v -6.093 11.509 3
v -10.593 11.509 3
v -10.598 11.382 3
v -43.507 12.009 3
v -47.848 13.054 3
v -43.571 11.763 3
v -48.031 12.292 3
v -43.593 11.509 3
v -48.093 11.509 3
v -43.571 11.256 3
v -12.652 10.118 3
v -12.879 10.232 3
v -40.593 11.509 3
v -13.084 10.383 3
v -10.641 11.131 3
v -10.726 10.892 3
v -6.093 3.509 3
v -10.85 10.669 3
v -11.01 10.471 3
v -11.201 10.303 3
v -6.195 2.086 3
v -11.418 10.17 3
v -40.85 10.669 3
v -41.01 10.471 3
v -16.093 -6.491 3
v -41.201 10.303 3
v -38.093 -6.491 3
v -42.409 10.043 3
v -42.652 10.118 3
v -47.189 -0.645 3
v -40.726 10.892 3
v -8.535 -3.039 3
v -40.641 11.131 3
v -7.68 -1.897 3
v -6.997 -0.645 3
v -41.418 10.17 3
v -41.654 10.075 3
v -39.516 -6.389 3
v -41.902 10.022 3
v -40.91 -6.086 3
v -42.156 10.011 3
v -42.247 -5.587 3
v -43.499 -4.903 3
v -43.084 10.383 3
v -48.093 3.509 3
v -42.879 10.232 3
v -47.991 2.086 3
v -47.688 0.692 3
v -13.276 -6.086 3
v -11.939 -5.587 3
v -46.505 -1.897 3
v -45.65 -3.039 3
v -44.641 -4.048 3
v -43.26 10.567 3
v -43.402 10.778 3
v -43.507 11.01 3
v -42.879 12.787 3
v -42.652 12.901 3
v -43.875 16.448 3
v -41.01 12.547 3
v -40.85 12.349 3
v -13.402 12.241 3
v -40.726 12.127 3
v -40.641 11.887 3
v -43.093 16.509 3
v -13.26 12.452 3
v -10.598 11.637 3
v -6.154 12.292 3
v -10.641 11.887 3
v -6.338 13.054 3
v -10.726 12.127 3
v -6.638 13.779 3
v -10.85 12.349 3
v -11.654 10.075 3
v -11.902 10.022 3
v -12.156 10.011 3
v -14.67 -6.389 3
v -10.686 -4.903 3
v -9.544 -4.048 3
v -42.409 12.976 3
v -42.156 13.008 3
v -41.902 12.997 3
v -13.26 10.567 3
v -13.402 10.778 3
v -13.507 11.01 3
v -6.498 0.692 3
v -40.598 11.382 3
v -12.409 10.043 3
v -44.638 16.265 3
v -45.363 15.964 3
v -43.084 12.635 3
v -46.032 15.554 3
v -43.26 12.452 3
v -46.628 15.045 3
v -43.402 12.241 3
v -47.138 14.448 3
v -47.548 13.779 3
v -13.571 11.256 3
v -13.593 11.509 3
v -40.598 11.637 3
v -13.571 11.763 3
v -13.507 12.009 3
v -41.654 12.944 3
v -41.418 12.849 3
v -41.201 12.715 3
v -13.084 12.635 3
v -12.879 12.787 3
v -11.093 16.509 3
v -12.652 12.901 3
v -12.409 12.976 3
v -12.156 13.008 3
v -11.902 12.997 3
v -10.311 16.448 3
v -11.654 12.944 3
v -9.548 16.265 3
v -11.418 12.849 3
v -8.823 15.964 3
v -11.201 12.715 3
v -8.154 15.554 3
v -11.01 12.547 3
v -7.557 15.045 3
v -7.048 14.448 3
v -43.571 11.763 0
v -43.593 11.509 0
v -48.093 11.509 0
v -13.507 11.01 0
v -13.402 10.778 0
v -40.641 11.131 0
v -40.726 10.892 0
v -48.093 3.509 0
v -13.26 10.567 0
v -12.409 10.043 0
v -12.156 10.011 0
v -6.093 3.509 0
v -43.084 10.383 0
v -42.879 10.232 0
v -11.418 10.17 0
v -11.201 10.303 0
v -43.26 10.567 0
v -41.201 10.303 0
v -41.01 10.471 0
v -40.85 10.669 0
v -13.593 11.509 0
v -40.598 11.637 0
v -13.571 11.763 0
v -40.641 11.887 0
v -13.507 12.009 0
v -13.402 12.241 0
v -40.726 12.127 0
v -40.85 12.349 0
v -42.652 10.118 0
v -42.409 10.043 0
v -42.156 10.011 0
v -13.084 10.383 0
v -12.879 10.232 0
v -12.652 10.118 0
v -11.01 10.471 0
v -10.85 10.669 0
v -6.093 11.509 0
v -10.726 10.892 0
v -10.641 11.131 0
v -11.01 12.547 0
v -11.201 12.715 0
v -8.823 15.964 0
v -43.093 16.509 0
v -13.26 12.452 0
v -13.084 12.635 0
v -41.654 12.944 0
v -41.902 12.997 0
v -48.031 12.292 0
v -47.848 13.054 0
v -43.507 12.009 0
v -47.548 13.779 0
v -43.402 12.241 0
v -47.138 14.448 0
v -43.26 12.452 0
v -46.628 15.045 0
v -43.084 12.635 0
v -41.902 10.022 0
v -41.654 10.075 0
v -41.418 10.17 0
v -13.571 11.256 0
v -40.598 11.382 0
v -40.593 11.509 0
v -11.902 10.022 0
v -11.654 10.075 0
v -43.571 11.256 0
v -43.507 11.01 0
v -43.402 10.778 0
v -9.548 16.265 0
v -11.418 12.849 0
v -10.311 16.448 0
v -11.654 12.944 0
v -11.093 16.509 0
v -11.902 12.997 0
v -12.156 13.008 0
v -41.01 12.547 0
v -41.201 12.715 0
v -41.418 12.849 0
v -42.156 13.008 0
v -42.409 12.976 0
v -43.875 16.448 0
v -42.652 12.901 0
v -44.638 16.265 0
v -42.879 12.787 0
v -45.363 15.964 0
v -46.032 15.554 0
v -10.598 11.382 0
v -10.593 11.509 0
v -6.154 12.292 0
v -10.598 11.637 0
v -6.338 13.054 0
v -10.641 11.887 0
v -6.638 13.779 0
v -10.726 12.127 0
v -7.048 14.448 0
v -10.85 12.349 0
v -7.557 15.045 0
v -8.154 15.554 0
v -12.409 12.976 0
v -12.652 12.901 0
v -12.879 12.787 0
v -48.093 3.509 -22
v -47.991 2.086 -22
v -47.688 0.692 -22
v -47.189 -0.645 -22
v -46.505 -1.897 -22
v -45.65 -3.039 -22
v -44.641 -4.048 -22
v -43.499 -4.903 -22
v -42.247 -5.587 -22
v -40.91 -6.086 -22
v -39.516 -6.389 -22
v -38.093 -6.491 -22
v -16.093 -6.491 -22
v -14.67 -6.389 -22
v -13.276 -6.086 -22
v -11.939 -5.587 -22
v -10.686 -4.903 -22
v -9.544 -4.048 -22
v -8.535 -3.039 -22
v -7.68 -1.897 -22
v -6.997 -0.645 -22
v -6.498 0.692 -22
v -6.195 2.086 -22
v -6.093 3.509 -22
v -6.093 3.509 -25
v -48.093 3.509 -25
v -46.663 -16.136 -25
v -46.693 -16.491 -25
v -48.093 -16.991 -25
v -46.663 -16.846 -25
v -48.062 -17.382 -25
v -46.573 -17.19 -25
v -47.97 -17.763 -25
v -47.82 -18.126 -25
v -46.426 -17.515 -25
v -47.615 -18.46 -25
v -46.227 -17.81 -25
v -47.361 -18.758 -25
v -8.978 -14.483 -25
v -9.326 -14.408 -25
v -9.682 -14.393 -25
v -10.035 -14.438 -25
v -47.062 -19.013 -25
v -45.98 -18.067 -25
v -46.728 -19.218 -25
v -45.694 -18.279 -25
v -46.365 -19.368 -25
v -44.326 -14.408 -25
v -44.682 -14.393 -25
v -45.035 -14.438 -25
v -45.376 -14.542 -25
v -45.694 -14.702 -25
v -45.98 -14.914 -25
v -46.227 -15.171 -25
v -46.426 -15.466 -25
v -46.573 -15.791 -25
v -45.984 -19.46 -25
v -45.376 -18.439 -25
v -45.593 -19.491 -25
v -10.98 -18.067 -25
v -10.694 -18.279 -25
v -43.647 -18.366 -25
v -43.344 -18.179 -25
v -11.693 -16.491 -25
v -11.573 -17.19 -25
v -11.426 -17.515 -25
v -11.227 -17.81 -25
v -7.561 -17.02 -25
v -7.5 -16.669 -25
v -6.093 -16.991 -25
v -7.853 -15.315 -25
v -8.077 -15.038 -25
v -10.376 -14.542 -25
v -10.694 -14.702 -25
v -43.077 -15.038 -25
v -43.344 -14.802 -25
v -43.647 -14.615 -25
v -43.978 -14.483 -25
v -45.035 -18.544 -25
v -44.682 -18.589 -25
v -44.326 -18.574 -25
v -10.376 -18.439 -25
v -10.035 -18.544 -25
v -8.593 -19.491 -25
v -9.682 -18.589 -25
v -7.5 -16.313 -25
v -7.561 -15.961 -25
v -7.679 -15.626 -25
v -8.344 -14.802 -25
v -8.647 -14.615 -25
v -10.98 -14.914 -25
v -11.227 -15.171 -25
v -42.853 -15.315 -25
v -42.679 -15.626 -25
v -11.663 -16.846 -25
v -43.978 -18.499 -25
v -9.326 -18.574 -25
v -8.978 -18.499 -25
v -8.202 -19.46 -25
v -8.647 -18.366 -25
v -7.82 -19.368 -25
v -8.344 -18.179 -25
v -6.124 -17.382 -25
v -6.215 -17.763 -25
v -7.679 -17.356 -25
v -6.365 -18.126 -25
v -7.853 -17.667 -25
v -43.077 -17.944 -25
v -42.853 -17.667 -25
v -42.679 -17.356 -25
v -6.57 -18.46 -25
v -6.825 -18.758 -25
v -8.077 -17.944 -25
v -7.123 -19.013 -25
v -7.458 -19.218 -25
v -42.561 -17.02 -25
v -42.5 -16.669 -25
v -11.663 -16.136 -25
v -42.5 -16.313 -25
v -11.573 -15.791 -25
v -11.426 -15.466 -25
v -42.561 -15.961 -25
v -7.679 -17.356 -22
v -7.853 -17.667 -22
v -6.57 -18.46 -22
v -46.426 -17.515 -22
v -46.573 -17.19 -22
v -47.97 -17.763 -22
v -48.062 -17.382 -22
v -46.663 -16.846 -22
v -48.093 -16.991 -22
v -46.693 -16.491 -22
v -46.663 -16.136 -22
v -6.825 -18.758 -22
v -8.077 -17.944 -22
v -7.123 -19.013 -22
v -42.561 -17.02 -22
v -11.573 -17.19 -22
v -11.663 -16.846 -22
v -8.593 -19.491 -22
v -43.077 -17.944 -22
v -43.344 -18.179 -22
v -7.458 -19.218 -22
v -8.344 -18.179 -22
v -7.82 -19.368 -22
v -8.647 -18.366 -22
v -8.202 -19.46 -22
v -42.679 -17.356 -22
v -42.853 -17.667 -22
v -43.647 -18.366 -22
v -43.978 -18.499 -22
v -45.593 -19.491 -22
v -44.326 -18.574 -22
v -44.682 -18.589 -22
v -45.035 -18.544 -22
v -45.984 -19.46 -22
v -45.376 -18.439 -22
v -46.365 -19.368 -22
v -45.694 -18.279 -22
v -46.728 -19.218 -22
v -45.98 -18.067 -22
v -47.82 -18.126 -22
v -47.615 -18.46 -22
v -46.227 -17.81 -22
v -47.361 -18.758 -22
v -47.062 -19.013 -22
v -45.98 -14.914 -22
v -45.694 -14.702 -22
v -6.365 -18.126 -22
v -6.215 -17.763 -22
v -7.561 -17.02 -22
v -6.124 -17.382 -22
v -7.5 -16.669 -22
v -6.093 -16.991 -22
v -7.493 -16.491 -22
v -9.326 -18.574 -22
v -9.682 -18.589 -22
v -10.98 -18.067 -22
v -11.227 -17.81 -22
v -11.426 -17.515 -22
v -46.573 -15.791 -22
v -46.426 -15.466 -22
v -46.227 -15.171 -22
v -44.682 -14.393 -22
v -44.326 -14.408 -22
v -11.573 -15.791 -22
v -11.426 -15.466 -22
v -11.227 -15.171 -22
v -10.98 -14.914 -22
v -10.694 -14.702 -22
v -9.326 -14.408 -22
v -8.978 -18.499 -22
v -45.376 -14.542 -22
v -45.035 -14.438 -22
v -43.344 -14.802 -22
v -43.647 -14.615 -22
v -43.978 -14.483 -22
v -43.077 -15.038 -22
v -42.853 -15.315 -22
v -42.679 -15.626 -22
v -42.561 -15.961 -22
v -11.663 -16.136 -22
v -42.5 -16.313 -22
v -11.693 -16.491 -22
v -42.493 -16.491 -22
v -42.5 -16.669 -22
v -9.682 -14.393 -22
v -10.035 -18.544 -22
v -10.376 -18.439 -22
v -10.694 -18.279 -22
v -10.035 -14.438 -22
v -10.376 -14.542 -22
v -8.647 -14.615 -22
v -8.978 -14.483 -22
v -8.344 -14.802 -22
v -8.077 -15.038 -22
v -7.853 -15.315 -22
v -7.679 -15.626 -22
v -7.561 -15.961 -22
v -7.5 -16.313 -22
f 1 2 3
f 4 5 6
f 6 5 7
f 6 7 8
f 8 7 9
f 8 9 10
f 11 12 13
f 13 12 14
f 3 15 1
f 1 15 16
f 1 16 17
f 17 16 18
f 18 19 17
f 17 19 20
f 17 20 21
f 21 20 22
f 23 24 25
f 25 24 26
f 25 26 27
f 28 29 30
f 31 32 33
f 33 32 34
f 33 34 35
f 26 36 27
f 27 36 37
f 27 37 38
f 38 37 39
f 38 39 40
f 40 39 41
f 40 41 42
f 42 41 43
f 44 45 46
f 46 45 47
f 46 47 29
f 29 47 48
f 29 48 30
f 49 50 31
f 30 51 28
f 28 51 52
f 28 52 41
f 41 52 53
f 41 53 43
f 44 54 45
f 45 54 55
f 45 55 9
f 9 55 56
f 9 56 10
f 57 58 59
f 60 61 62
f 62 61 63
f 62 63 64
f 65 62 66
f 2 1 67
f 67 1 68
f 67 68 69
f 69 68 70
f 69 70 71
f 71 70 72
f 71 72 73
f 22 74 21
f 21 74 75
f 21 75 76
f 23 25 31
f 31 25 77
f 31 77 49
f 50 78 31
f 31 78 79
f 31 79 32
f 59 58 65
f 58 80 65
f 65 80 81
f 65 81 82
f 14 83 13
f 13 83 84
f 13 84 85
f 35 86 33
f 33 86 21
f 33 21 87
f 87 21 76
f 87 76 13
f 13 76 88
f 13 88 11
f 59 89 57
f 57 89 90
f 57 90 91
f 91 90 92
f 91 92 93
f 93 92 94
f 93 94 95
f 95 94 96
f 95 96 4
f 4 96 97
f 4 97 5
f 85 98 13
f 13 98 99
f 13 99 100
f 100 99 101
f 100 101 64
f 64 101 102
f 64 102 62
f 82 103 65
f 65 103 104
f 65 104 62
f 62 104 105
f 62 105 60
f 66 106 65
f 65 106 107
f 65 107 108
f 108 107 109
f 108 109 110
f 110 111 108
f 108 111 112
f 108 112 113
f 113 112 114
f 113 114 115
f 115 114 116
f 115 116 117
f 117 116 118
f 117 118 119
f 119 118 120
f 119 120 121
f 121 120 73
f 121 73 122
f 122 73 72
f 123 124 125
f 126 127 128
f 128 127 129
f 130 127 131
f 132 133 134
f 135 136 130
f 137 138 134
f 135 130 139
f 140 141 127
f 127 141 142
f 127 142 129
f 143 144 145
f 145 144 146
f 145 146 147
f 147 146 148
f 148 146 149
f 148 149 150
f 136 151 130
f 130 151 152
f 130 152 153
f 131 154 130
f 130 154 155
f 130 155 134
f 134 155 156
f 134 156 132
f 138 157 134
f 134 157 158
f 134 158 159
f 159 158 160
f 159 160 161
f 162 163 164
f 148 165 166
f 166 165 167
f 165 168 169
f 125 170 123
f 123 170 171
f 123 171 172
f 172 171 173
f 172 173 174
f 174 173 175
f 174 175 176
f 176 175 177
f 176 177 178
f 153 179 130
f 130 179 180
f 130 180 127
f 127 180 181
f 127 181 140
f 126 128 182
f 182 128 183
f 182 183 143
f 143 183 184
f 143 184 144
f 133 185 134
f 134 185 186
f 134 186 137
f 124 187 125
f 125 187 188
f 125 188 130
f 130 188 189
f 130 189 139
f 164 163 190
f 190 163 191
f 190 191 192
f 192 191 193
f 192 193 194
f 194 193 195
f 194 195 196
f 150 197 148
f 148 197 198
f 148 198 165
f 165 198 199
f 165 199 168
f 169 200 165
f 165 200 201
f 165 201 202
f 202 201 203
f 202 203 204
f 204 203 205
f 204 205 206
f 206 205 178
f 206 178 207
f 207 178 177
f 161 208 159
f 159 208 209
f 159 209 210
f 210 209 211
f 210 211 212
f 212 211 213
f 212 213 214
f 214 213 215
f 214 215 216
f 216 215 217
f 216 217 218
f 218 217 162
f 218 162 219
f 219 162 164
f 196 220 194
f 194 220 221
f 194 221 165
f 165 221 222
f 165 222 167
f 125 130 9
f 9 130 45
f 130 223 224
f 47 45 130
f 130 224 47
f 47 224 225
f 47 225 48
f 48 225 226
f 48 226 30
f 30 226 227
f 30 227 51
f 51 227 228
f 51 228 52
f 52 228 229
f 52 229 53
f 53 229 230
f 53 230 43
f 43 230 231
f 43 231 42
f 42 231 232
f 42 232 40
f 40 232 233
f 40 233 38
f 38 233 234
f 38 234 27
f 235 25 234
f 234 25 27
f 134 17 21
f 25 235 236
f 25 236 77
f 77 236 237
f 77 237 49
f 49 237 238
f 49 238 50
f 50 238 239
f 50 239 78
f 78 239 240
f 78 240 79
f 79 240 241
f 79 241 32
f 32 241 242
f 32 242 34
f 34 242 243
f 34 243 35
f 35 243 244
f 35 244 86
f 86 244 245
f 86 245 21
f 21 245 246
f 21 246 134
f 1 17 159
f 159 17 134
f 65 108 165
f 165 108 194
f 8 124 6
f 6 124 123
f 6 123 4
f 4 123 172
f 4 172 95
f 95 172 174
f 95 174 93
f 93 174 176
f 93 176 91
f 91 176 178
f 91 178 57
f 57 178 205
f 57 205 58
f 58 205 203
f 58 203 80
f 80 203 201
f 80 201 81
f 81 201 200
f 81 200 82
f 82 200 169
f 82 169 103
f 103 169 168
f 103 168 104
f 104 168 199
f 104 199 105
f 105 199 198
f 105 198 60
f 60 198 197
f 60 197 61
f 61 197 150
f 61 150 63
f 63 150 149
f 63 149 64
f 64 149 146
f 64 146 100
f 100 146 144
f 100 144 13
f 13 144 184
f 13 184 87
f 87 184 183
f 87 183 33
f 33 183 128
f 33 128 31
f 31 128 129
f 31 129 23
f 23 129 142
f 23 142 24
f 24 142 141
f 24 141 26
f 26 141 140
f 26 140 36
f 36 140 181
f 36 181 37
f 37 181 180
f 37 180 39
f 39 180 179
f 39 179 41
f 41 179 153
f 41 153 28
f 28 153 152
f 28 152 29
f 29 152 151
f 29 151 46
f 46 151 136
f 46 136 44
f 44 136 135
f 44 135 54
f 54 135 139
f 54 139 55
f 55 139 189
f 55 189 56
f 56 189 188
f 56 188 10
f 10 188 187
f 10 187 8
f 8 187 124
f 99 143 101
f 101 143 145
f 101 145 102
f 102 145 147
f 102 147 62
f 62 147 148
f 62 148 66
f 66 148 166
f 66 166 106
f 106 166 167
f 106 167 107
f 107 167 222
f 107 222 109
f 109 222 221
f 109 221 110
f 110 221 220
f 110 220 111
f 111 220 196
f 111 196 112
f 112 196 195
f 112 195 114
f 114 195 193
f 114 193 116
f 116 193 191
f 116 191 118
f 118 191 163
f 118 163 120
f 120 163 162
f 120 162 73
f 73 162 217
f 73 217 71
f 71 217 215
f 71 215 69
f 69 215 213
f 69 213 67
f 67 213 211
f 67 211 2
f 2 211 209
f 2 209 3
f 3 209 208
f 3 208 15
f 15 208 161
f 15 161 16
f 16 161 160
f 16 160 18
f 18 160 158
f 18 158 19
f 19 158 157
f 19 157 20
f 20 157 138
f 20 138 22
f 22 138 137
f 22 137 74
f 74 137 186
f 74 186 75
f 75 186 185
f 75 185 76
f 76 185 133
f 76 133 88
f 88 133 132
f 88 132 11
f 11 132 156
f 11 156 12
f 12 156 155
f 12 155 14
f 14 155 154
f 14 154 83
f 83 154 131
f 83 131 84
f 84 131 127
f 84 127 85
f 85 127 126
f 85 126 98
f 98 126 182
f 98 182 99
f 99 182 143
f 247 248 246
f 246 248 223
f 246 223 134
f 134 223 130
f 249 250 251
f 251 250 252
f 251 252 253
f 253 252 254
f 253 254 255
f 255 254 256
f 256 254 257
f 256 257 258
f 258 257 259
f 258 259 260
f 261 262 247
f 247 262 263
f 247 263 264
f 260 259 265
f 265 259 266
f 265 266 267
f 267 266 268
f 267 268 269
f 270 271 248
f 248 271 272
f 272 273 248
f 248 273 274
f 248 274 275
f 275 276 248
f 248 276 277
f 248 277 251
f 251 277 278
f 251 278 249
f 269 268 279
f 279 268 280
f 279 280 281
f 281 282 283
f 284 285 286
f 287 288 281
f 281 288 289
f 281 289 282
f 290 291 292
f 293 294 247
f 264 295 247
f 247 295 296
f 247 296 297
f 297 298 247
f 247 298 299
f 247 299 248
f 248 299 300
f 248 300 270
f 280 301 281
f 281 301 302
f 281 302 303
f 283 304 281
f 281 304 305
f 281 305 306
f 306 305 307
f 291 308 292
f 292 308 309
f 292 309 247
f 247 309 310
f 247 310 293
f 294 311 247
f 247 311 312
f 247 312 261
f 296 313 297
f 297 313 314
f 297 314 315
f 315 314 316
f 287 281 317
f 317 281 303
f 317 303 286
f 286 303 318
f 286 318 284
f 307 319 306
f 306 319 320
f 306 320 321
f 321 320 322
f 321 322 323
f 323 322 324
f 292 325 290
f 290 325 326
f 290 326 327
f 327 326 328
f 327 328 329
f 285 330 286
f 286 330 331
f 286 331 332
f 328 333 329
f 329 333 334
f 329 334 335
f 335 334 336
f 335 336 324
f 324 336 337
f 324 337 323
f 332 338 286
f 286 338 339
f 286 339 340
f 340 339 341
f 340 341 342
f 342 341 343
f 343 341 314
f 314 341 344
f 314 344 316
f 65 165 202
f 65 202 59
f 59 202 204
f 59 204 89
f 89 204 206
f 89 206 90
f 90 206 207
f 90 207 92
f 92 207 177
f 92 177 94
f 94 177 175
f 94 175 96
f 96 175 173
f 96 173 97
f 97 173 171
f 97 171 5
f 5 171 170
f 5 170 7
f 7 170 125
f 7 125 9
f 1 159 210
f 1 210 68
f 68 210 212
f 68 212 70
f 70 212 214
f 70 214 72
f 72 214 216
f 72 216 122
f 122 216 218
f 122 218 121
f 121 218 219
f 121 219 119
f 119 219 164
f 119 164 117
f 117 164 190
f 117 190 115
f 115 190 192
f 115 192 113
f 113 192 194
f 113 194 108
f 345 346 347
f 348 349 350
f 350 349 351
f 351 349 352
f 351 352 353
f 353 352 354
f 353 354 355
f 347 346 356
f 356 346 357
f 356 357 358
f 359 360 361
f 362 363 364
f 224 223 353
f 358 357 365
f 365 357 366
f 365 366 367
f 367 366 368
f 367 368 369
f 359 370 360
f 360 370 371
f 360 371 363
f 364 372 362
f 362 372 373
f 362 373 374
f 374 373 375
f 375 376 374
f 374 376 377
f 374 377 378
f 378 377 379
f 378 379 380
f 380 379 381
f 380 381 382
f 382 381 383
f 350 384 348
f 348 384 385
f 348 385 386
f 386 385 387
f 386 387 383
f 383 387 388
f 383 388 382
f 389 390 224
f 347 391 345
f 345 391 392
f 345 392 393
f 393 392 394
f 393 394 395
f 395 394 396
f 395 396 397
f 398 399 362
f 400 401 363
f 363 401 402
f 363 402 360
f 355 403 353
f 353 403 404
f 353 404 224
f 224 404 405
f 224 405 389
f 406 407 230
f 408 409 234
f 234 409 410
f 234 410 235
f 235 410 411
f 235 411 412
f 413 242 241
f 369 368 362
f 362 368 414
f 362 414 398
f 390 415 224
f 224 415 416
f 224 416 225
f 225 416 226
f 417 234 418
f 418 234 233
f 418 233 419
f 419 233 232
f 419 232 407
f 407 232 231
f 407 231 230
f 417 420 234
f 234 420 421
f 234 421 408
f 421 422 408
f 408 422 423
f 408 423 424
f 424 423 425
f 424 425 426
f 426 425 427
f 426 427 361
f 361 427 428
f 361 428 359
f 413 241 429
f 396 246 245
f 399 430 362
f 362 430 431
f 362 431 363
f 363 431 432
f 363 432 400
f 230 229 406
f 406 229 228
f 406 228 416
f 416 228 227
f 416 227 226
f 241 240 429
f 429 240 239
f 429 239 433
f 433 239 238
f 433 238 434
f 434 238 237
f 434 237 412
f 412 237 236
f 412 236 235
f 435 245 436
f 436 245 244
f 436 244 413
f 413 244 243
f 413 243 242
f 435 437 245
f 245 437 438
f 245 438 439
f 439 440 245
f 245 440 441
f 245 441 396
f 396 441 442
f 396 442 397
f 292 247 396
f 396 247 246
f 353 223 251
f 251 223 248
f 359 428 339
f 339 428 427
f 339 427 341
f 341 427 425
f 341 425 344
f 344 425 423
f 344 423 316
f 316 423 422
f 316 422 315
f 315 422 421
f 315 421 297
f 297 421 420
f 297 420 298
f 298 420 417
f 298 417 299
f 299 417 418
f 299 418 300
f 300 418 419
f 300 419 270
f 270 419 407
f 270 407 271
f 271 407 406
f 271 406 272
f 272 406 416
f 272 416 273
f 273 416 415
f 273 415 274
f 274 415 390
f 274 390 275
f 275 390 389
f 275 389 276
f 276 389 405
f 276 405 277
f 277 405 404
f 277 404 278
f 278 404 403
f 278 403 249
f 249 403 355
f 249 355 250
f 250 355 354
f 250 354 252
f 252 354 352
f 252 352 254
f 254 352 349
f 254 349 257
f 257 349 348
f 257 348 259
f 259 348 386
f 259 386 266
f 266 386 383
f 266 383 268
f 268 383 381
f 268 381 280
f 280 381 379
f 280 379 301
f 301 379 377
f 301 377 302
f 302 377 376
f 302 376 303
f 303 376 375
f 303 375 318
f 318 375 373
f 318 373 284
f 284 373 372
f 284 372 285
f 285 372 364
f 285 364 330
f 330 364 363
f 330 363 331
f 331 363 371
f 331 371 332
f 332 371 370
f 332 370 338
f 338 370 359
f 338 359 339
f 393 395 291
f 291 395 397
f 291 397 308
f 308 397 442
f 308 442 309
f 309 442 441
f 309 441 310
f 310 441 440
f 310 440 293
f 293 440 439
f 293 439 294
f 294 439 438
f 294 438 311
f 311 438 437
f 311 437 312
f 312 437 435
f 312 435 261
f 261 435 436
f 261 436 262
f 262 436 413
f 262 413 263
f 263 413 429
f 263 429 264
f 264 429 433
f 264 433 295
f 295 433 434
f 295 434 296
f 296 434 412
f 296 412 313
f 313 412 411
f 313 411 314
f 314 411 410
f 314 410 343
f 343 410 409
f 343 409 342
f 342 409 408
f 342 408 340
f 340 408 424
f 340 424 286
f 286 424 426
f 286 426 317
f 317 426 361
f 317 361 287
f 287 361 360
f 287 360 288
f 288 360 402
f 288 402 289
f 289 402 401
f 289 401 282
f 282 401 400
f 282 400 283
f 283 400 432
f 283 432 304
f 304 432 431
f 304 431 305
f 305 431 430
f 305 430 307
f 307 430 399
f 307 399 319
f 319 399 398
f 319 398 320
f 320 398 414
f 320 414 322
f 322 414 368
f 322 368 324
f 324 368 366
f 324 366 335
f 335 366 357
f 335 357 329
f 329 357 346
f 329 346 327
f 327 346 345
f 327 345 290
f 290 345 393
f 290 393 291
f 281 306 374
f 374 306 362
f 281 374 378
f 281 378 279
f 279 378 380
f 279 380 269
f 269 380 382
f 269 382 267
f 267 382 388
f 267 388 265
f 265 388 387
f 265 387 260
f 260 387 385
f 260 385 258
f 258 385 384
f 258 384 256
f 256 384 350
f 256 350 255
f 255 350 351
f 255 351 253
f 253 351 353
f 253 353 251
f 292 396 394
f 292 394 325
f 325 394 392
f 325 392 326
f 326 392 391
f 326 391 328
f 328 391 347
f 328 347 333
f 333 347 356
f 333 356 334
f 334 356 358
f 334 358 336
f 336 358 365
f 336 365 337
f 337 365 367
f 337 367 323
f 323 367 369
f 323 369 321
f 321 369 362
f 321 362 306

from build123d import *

# Parameters (mm, degrees)
SKETCH3_R           = 1.5
BOSS_EXTRUDE3_DEPTH = 3
BOSS_EXTRUDE4_START = -25
BOSS_EXTRUDE4_DEPTH = 25
FILLET4_R           = 5
SKETCH9_W           = 42
SKETCH9_H           = 3
BOSS_EXTRUDE7_DEPTH = 30
FILLET6_R           = 5
FILLET7_R           = 5
SKETCH11_R          = 2.1
CUT_EXTRUDE2_DEPTH  = 30
SKETCH12_W          = 44.285709781
SKETCH12_H          = 8.726500344
CUT_EXTRUDE3_DEPTH  = 10
FILLET8_R           = 2.5


with BuildPart() as part:
    # Sketch3 → Boss-Extrude3 (new body)
    with BuildSketch(Plane.XY):
        with BuildLine():
            Line((-22.592834793, 16.50935751), (-6.092834793, 16.50935751))
            Line((-6.092834793, 16.50935751), (-6.092834793, 3.50935751))
            ThreePointArc((-6.092834793, 3.50935751), (-9.021766981, -3.561710302), (-16.092834793, -6.49064249))
            Line((-16.092834793, -6.49064249), (-38.092834793, -6.49064249))
            ThreePointArc((-38.092834793, -6.49064249), (-45.163902605, -3.561710302), (-48.092834793, 3.50935751))
            Line((-48.092834793, 3.50935751), (-48.092834793, 16.50935751))
            Line((-48.092834793, 16.50935751), (-31.592834793, 16.50935751))
            Line((-31.592834793, 16.50935751), (-22.592834793, 16.50935751))
        make_face()
        with Locations((-42.092834793, 11.50935751)):
            Circle(SKETCH3_R, mode=Mode.SUBTRACT)
        with Locations((-12.092834793, 11.50935751)):
            Circle(SKETCH3_R, mode=Mode.SUBTRACT)
    extrude(amount=BOSS_EXTRUDE3_DEPTH)

    # Sketch6 → Boss-Extrude4 (add)
    with BuildSketch(Plane.XY.offset(BOSS_EXTRUDE4_START)):
        with BuildLine():
            Line((-38.092834793, -6.49064249), (-16.092834793, -6.49064249))
            ThreePointArc((-16.092834793, -6.49064249), (-9.021766981, -3.561710302), (-6.092834793, 3.50935751))
            Line((-6.092834793, 3.50935751), (-48.092834793, 3.50935751))
            ThreePointArc((-48.092834793, 3.50935751), (-45.163902605, -3.561710302), (-38.092834793, -6.49064249))
        make_face()
    extrude(amount=BOSS_EXTRUDE4_DEPTH)

    # Fillet4
    fillet4_edges = [part.edges().sort_by_distance(p)[0] for p in [
        (-48.092834793, 16.50935751, 1.5),
        (-6.092834793, 16.50935751, 1.5),
    ]]
    fillet(fillet4_edges, radius=FILLET4_R)

    # Sketch9 → Boss-Extrude7 (add)
    with BuildSketch(Plane(origin=(0, 3.50935751, 0), x_dir=(1, 0, 0), z_dir=(0, 1, 0))):
        with Locations((-27.092834793, 23.5)):
            Rectangle(SKETCH9_W, SKETCH9_H)
    extrude(amount=-BOSS_EXTRUDE7_DEPTH)

    # Fillet6
    fillet6_edges = [part.edges().sort_by_distance(p)[0] for p in [
        (-6.092834793, -26.49064249, -23.5),
    ]]
    fillet(fillet6_edges, radius=FILLET6_R)

    # Fillet7
    fillet7_edges = [part.edges().sort_by_distance(p)[0] for p in [
        (-48.092834793, -26.49064249, -23.5),
    ]]
    fillet(fillet7_edges, radius=FILLET7_R)

    # Sketch11 → Cut-Extrude2 (cut)
    with BuildSketch(Plane(origin=(0, 0, -25), x_dir=(-1, 0, 0), z_dir=(0, 0, -1))):
        with Locations((9.592834793, -16.49064249)):
            Circle(SKETCH11_R)
        with Locations((44.592834793, -16.49064249)):
            Circle(SKETCH11_R)
        with BuildLine():
            Line((22.592834793, -24.49064249), (31.592834793, -24.49064249))
            ThreePointArc((31.592834793, -24.49064249), (27.092834793, -19.99064249), (22.592834793, -24.49064249))
        make_face()
    extrude(amount=-CUT_EXTRUDE2_DEPTH, mode=Mode.SUBTRACT)

    # Sketch12 → Cut-Extrude3 (cut)
    with BuildSketch(Plane(origin=(0, 0, -25), x_dir=(-1, 0, 0), z_dir=(0, 0, -1))):
        with Locations((28.235689684, -23.853892662)):
            Rectangle(SKETCH12_W, SKETCH12_H)
    extrude(amount=-CUT_EXTRUDE3_DEPTH, mode=Mode.SUBTRACT)

    # Fillet8
    fillet8_edges = [part.edges().sort_by_distance(p)[0] for p in [
        (-48.092834793, -19.49064249, -23.5),
        (-6.092834793, -19.49064249, -23.5),
    ]]
    fillet(fillet8_edges, radius=FILLET8_R)


solid = part.part
